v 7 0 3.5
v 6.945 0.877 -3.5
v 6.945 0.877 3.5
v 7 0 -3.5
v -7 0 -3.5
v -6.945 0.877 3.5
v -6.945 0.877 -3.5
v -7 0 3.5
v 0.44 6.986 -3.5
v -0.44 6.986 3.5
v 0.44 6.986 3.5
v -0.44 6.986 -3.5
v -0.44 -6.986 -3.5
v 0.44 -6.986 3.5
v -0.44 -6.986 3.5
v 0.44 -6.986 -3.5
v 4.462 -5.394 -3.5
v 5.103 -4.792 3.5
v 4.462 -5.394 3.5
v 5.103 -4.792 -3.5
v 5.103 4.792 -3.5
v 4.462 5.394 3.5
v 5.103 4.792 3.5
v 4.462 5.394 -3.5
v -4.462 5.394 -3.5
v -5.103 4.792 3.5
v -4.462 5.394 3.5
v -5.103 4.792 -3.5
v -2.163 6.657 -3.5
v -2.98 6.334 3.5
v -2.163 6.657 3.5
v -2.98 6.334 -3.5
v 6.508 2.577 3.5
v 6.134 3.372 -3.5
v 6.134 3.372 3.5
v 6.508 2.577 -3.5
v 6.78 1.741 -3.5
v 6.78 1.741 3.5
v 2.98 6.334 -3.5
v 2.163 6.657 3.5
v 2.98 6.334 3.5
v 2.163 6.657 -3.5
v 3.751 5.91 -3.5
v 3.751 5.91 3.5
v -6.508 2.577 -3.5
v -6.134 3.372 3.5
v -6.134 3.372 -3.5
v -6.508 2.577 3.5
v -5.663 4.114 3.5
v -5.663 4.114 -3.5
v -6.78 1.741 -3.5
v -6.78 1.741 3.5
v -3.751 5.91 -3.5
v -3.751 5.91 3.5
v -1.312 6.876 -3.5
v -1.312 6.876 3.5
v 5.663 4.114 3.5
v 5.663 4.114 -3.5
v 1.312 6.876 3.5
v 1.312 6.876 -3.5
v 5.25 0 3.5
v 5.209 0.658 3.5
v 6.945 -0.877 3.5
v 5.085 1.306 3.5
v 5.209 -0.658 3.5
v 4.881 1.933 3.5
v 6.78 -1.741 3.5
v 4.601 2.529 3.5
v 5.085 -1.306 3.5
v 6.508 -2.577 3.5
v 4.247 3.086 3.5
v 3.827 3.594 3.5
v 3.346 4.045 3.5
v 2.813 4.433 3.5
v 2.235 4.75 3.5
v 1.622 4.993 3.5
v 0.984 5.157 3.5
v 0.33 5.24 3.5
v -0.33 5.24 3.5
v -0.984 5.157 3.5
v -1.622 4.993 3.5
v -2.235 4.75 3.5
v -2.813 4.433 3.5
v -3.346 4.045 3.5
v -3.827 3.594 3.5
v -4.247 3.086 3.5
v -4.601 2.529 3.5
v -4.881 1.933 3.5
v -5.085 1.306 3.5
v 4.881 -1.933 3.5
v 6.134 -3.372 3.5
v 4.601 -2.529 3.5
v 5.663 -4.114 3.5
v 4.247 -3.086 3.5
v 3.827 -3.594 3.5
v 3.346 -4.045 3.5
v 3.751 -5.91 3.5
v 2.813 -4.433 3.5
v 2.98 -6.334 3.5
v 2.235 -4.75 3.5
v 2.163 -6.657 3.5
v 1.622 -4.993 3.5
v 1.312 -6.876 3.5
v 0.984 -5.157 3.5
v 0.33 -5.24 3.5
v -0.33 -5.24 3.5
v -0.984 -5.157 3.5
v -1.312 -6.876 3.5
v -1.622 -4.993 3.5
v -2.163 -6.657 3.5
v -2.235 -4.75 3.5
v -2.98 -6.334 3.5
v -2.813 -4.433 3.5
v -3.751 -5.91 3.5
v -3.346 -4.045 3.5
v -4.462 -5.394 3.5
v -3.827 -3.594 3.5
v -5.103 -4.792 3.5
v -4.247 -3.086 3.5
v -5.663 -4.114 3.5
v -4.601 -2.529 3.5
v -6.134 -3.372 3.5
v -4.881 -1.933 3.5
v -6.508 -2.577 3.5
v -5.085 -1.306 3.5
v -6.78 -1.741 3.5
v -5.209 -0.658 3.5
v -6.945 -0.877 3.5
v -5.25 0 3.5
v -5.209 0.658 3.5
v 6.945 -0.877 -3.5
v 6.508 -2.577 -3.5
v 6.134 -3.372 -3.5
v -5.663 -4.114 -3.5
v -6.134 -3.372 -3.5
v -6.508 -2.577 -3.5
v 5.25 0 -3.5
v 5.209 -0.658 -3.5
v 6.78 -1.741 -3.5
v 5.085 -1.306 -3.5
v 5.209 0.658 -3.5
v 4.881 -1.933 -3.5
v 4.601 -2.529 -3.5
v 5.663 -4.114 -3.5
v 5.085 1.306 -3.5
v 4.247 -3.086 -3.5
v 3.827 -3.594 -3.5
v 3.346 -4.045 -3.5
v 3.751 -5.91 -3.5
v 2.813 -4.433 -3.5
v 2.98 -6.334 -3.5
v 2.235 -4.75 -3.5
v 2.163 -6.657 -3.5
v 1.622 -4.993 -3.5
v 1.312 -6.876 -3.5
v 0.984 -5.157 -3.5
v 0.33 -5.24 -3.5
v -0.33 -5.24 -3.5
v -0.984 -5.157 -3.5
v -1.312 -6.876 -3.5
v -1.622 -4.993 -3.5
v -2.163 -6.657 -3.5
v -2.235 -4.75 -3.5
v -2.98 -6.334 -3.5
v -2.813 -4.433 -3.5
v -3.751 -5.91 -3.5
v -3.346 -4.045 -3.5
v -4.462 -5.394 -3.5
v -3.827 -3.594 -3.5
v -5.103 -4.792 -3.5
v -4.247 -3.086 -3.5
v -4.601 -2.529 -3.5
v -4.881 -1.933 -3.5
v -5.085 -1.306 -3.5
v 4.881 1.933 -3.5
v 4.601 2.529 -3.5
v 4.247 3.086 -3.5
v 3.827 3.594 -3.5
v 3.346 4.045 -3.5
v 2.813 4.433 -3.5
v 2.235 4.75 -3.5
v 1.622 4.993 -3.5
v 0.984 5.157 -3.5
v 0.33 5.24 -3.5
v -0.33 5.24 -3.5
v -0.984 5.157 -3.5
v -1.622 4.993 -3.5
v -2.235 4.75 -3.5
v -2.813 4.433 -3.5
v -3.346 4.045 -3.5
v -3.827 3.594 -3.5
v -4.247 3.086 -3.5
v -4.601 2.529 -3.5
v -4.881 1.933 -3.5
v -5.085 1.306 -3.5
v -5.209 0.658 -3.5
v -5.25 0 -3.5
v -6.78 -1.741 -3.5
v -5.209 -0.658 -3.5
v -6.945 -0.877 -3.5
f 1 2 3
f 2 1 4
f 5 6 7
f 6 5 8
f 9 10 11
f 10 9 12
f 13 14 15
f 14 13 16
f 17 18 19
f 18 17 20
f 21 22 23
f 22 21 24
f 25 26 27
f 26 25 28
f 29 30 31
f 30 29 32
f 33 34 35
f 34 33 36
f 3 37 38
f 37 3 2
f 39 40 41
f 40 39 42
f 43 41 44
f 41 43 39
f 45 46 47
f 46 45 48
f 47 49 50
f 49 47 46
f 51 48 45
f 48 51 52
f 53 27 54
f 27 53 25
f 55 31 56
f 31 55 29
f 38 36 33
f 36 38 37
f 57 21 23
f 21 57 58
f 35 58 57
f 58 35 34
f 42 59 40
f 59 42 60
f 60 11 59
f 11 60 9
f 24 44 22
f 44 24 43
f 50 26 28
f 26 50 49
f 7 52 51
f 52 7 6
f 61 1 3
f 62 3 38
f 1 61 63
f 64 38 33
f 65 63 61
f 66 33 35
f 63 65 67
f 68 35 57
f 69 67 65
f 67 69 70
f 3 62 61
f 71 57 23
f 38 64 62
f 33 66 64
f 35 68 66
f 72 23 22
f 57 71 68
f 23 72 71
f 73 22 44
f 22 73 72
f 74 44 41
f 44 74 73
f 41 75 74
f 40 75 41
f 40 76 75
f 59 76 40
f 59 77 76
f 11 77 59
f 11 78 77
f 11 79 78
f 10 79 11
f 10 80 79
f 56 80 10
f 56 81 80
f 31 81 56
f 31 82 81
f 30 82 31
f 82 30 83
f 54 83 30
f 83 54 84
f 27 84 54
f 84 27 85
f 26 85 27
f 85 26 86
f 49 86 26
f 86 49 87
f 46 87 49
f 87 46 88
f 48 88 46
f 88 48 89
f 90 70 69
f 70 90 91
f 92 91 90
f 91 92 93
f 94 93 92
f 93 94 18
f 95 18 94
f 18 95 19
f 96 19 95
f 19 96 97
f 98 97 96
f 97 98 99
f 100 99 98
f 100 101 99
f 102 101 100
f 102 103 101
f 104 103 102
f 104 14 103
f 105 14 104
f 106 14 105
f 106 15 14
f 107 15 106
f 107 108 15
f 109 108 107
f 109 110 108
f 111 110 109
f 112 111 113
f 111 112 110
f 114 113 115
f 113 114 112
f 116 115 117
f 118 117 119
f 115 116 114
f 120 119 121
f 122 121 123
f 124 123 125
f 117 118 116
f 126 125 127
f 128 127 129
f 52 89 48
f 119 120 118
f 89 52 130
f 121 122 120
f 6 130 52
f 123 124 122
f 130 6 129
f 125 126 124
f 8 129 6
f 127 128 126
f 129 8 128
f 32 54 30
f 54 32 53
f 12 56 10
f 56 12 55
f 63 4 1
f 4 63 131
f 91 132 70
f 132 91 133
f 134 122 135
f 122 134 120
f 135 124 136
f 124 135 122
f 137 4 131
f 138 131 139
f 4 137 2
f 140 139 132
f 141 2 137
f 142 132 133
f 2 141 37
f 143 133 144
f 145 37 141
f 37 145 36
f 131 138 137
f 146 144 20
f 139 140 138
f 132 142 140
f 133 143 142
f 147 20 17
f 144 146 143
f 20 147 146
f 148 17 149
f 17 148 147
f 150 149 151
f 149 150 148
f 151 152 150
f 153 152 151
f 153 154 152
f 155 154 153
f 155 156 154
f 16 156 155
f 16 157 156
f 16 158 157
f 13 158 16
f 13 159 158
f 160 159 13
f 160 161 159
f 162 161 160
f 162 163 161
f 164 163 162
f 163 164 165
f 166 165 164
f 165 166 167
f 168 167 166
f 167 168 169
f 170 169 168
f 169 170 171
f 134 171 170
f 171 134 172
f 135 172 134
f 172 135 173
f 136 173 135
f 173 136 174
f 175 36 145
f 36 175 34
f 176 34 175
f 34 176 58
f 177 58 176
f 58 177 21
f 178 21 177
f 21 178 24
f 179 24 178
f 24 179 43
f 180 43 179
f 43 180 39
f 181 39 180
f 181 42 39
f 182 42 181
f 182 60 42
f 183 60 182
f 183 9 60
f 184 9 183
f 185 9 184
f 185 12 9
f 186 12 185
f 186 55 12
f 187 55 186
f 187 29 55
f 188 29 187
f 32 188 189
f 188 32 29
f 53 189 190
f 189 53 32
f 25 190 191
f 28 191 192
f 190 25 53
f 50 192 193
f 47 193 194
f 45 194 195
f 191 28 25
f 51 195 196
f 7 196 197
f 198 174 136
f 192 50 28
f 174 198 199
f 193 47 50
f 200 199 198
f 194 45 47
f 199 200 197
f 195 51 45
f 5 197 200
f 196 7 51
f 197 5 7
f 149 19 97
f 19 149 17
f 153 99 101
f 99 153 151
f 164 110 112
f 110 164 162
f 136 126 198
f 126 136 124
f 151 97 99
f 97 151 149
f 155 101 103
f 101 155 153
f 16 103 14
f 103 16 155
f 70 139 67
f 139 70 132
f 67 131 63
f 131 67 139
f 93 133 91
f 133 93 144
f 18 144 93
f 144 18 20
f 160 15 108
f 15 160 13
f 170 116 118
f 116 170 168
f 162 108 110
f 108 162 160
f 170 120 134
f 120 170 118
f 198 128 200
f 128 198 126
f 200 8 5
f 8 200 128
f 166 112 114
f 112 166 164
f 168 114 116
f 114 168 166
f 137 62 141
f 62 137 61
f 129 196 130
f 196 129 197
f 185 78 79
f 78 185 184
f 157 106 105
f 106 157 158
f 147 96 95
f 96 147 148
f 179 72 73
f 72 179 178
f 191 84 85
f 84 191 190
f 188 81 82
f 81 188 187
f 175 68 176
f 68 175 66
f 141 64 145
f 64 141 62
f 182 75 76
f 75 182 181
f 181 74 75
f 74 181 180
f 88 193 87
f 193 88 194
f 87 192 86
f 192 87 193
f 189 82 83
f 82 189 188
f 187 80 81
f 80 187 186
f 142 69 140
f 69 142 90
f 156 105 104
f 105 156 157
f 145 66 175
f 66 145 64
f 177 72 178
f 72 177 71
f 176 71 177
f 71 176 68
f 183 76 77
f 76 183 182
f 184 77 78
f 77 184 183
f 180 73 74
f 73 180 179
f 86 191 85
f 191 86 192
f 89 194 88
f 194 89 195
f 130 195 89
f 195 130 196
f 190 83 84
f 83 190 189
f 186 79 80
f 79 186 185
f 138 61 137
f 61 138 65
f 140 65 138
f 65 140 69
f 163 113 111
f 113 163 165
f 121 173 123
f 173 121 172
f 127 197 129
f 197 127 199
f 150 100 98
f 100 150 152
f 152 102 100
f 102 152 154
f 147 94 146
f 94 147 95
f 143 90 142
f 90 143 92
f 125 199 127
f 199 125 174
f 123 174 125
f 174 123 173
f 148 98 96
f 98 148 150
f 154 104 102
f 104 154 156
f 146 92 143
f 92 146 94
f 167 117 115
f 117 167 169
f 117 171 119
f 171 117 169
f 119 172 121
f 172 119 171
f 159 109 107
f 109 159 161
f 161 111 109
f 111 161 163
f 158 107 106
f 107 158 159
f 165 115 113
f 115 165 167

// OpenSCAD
$fn = 50;


difference() {
	union() {
		translate(v = [0, 0, -3.5000000000]) {
			cylinder(h = 7, r = 7.0000000000);
		}
	}
	union() {
		translate(v = [0, 0, -100.0000000000]) {
			cylinder(h = 200, r = 5.2500000000);
		}
	}
}
